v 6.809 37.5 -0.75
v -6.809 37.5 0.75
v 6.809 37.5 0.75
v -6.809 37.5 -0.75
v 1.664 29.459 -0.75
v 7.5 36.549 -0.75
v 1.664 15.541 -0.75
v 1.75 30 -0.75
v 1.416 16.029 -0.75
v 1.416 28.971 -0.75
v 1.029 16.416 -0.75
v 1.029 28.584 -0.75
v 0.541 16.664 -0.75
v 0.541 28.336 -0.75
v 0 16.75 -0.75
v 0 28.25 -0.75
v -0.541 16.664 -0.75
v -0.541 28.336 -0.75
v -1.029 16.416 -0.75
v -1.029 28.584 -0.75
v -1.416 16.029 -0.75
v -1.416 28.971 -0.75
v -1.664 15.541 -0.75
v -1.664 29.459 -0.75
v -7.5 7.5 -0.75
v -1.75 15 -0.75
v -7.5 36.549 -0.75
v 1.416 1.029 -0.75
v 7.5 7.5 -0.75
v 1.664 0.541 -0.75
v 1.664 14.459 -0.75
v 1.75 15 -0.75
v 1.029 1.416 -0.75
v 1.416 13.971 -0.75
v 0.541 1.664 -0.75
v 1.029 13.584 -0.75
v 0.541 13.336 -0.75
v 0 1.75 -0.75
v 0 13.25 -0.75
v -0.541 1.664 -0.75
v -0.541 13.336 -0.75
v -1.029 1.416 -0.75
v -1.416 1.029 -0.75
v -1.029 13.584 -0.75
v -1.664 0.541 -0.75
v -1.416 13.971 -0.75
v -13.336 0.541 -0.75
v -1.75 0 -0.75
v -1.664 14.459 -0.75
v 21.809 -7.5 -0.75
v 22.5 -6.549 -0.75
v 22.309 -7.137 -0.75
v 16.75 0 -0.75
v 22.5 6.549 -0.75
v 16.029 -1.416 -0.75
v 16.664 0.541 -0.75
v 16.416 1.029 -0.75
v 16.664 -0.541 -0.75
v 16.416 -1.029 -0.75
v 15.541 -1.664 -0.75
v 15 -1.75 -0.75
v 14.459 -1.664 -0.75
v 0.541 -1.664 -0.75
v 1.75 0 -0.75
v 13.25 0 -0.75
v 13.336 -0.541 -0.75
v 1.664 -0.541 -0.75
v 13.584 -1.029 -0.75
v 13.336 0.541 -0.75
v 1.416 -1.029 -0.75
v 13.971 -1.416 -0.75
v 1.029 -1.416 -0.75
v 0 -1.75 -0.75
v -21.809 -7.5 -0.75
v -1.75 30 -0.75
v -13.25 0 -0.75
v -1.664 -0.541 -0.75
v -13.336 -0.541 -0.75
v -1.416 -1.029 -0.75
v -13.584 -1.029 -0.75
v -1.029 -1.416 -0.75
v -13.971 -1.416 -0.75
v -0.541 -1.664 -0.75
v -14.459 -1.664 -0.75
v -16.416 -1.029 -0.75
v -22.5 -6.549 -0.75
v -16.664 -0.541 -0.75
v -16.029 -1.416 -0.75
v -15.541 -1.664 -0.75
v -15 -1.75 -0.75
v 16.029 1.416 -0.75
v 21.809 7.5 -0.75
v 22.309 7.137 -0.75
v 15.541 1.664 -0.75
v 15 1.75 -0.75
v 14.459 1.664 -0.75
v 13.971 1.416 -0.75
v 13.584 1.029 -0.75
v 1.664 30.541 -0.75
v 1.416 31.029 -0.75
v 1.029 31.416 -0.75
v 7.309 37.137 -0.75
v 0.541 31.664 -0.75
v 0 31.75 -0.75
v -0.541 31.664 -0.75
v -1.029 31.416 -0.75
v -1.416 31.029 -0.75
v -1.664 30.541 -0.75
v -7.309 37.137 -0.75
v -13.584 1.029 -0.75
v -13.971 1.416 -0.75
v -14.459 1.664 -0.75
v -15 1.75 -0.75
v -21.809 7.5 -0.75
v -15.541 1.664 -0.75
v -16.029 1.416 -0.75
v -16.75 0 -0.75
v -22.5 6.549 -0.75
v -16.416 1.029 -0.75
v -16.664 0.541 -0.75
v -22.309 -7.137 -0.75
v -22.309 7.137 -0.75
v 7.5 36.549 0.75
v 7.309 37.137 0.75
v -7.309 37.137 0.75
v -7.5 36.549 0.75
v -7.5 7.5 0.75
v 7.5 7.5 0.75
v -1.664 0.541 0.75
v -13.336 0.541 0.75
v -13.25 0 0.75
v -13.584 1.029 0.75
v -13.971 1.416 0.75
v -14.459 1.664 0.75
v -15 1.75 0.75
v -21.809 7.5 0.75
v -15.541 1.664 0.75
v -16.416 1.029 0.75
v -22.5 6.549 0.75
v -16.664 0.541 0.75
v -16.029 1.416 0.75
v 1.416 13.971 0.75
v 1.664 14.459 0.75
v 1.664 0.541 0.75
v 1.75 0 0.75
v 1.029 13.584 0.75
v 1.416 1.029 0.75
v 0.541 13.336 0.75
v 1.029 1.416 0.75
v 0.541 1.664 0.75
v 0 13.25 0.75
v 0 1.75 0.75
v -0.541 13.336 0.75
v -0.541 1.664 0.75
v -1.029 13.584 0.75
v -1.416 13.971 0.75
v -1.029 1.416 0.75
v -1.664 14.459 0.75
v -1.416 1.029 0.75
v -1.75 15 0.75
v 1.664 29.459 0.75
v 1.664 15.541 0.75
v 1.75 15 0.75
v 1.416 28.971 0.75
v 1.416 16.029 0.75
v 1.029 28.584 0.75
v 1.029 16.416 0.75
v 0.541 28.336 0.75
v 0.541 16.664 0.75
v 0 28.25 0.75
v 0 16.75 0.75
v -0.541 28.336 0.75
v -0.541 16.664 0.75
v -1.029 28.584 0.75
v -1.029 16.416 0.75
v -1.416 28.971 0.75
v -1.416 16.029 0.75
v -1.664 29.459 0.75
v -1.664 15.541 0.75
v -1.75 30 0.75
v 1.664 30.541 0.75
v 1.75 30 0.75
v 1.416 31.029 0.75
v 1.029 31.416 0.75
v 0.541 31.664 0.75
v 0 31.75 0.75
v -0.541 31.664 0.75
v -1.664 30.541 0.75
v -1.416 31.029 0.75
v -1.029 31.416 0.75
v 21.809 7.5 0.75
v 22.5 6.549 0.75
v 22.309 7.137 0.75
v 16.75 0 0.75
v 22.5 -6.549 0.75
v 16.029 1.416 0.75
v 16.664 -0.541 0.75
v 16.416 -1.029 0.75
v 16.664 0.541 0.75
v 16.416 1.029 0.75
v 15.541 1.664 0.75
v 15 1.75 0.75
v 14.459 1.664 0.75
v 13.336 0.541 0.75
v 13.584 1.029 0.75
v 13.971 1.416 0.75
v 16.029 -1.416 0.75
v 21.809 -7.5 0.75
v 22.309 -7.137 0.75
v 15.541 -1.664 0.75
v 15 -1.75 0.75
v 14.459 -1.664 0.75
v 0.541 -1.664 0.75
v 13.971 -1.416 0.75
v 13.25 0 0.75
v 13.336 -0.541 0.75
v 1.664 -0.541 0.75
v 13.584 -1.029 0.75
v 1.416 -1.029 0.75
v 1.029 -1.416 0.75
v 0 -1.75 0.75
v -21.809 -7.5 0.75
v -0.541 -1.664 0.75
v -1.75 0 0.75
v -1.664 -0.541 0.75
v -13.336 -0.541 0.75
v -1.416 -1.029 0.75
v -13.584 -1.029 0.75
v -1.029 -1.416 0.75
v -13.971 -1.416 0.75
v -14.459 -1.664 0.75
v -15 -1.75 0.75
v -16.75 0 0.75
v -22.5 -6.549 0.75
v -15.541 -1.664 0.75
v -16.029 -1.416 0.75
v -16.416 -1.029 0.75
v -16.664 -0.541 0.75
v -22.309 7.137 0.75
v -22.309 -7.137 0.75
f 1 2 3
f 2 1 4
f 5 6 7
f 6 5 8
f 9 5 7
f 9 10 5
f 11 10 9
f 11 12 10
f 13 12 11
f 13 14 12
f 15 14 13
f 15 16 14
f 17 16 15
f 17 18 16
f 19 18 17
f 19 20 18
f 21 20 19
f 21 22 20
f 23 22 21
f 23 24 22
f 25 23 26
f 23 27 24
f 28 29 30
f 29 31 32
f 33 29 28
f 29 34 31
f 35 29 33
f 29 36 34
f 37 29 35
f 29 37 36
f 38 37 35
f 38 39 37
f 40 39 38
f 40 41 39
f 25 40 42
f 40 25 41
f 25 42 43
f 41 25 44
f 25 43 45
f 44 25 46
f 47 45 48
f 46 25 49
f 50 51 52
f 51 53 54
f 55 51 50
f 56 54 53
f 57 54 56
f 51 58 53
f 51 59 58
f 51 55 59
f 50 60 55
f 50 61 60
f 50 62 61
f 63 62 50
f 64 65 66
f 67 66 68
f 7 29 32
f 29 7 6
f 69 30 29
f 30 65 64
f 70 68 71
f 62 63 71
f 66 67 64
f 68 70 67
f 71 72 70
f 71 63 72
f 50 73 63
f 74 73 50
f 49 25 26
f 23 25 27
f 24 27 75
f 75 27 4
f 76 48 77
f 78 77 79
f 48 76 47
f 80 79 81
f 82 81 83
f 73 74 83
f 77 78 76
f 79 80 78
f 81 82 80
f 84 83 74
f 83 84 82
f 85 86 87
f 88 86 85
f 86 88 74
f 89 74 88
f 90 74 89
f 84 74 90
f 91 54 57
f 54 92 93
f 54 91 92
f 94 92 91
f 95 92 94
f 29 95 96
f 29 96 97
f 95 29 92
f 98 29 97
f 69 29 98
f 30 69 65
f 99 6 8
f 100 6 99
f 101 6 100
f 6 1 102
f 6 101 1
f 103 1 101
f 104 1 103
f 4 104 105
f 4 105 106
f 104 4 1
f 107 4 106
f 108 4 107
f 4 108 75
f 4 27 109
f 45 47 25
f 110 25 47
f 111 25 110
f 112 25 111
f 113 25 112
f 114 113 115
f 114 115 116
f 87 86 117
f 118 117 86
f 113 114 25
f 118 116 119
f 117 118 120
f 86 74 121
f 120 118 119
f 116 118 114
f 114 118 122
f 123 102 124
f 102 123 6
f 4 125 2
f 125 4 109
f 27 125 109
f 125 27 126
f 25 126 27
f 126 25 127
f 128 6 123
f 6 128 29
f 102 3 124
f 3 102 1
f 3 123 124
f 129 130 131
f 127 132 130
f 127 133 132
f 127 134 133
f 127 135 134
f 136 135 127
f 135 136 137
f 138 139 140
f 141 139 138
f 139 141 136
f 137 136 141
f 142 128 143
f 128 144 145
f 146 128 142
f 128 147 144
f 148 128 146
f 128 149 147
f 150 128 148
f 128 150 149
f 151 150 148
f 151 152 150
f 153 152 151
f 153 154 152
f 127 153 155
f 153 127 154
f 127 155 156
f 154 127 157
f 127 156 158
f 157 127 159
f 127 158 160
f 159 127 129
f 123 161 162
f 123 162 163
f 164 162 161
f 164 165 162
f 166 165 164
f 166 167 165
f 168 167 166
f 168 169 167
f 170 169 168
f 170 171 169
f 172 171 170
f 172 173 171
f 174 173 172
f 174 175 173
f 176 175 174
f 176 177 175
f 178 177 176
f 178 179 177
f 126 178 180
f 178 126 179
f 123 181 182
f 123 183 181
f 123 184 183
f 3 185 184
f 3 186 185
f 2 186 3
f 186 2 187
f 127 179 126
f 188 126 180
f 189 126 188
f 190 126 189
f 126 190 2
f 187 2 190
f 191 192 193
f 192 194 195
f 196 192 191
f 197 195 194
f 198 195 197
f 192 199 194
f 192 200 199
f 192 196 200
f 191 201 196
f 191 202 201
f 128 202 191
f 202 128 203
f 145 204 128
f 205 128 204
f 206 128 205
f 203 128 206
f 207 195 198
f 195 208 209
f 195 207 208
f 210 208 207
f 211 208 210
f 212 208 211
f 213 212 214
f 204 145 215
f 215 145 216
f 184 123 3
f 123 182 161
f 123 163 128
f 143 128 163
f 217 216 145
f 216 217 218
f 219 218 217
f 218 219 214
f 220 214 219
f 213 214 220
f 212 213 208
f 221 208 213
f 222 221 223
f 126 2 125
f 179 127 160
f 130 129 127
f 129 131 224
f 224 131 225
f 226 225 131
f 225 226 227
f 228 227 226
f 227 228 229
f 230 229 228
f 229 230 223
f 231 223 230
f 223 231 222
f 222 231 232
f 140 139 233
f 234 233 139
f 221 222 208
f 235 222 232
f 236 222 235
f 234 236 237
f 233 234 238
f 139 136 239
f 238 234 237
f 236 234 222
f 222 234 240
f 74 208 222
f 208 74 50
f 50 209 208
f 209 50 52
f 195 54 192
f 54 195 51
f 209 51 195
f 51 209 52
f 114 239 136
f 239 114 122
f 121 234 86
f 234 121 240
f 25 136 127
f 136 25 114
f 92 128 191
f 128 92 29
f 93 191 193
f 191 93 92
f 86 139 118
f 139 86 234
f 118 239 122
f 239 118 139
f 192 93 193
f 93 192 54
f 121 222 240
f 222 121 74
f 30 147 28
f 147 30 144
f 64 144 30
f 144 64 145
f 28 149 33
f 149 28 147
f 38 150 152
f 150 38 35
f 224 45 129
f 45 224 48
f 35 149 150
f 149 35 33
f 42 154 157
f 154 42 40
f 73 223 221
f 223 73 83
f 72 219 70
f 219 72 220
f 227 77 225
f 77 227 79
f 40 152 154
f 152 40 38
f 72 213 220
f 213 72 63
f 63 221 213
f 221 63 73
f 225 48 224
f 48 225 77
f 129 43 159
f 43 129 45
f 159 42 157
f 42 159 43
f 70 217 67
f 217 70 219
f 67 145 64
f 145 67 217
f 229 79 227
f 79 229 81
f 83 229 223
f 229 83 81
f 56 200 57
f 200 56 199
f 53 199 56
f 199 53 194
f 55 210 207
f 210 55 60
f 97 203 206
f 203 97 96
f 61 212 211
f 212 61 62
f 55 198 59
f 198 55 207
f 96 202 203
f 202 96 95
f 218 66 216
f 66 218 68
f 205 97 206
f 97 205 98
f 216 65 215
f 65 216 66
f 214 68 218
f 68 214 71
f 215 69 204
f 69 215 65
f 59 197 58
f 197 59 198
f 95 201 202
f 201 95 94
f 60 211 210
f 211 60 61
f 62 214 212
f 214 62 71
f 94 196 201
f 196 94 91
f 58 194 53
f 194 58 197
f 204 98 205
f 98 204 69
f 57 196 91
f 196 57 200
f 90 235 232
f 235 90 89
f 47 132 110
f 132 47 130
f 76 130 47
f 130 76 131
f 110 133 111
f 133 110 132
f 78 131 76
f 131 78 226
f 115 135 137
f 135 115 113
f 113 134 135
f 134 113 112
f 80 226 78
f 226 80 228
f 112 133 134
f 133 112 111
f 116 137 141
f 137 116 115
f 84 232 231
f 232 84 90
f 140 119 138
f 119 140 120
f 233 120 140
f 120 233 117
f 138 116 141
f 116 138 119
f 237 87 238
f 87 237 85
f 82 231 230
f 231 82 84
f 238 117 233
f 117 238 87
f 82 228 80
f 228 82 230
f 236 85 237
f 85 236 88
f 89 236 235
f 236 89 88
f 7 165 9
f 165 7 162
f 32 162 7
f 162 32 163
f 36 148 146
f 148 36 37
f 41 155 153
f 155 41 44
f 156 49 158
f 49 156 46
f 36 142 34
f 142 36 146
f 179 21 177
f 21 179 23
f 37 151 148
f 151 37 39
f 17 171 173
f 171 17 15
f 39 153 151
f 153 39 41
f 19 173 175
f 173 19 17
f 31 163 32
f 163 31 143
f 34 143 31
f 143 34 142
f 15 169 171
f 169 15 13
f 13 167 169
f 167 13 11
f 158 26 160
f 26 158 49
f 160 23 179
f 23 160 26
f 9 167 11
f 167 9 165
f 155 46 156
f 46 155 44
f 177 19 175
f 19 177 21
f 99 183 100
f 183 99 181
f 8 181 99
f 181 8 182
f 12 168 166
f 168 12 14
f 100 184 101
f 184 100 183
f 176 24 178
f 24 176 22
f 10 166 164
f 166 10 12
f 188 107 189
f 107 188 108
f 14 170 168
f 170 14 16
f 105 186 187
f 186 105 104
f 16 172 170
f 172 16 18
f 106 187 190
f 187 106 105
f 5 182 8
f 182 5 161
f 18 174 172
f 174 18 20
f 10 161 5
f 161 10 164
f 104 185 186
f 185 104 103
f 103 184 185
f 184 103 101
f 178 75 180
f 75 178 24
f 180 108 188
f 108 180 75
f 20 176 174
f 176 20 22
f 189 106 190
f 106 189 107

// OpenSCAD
use <fillets_and_rounds.scad>

$fn=20;

difference(){
    add_rounds(axis="z"){union(){
        cube([45,15,1.5],center=true);
        translate([0,15+7.5,0])cube([15,30,1.5],center=true);
        }}
    cylinder(d=3.5,h=5,center=true);
    translate([15,0,0])cylinder(d=3.5,h=5,center=true);
    translate([-15,0,0])cylinder(d=3.5,h=5,center=true);
    translate([0,15,0])cylinder(d=3.5,h=5,center=true);
    translate([0,30,0])cylinder(d=3.5,h=5,center=true);
}
